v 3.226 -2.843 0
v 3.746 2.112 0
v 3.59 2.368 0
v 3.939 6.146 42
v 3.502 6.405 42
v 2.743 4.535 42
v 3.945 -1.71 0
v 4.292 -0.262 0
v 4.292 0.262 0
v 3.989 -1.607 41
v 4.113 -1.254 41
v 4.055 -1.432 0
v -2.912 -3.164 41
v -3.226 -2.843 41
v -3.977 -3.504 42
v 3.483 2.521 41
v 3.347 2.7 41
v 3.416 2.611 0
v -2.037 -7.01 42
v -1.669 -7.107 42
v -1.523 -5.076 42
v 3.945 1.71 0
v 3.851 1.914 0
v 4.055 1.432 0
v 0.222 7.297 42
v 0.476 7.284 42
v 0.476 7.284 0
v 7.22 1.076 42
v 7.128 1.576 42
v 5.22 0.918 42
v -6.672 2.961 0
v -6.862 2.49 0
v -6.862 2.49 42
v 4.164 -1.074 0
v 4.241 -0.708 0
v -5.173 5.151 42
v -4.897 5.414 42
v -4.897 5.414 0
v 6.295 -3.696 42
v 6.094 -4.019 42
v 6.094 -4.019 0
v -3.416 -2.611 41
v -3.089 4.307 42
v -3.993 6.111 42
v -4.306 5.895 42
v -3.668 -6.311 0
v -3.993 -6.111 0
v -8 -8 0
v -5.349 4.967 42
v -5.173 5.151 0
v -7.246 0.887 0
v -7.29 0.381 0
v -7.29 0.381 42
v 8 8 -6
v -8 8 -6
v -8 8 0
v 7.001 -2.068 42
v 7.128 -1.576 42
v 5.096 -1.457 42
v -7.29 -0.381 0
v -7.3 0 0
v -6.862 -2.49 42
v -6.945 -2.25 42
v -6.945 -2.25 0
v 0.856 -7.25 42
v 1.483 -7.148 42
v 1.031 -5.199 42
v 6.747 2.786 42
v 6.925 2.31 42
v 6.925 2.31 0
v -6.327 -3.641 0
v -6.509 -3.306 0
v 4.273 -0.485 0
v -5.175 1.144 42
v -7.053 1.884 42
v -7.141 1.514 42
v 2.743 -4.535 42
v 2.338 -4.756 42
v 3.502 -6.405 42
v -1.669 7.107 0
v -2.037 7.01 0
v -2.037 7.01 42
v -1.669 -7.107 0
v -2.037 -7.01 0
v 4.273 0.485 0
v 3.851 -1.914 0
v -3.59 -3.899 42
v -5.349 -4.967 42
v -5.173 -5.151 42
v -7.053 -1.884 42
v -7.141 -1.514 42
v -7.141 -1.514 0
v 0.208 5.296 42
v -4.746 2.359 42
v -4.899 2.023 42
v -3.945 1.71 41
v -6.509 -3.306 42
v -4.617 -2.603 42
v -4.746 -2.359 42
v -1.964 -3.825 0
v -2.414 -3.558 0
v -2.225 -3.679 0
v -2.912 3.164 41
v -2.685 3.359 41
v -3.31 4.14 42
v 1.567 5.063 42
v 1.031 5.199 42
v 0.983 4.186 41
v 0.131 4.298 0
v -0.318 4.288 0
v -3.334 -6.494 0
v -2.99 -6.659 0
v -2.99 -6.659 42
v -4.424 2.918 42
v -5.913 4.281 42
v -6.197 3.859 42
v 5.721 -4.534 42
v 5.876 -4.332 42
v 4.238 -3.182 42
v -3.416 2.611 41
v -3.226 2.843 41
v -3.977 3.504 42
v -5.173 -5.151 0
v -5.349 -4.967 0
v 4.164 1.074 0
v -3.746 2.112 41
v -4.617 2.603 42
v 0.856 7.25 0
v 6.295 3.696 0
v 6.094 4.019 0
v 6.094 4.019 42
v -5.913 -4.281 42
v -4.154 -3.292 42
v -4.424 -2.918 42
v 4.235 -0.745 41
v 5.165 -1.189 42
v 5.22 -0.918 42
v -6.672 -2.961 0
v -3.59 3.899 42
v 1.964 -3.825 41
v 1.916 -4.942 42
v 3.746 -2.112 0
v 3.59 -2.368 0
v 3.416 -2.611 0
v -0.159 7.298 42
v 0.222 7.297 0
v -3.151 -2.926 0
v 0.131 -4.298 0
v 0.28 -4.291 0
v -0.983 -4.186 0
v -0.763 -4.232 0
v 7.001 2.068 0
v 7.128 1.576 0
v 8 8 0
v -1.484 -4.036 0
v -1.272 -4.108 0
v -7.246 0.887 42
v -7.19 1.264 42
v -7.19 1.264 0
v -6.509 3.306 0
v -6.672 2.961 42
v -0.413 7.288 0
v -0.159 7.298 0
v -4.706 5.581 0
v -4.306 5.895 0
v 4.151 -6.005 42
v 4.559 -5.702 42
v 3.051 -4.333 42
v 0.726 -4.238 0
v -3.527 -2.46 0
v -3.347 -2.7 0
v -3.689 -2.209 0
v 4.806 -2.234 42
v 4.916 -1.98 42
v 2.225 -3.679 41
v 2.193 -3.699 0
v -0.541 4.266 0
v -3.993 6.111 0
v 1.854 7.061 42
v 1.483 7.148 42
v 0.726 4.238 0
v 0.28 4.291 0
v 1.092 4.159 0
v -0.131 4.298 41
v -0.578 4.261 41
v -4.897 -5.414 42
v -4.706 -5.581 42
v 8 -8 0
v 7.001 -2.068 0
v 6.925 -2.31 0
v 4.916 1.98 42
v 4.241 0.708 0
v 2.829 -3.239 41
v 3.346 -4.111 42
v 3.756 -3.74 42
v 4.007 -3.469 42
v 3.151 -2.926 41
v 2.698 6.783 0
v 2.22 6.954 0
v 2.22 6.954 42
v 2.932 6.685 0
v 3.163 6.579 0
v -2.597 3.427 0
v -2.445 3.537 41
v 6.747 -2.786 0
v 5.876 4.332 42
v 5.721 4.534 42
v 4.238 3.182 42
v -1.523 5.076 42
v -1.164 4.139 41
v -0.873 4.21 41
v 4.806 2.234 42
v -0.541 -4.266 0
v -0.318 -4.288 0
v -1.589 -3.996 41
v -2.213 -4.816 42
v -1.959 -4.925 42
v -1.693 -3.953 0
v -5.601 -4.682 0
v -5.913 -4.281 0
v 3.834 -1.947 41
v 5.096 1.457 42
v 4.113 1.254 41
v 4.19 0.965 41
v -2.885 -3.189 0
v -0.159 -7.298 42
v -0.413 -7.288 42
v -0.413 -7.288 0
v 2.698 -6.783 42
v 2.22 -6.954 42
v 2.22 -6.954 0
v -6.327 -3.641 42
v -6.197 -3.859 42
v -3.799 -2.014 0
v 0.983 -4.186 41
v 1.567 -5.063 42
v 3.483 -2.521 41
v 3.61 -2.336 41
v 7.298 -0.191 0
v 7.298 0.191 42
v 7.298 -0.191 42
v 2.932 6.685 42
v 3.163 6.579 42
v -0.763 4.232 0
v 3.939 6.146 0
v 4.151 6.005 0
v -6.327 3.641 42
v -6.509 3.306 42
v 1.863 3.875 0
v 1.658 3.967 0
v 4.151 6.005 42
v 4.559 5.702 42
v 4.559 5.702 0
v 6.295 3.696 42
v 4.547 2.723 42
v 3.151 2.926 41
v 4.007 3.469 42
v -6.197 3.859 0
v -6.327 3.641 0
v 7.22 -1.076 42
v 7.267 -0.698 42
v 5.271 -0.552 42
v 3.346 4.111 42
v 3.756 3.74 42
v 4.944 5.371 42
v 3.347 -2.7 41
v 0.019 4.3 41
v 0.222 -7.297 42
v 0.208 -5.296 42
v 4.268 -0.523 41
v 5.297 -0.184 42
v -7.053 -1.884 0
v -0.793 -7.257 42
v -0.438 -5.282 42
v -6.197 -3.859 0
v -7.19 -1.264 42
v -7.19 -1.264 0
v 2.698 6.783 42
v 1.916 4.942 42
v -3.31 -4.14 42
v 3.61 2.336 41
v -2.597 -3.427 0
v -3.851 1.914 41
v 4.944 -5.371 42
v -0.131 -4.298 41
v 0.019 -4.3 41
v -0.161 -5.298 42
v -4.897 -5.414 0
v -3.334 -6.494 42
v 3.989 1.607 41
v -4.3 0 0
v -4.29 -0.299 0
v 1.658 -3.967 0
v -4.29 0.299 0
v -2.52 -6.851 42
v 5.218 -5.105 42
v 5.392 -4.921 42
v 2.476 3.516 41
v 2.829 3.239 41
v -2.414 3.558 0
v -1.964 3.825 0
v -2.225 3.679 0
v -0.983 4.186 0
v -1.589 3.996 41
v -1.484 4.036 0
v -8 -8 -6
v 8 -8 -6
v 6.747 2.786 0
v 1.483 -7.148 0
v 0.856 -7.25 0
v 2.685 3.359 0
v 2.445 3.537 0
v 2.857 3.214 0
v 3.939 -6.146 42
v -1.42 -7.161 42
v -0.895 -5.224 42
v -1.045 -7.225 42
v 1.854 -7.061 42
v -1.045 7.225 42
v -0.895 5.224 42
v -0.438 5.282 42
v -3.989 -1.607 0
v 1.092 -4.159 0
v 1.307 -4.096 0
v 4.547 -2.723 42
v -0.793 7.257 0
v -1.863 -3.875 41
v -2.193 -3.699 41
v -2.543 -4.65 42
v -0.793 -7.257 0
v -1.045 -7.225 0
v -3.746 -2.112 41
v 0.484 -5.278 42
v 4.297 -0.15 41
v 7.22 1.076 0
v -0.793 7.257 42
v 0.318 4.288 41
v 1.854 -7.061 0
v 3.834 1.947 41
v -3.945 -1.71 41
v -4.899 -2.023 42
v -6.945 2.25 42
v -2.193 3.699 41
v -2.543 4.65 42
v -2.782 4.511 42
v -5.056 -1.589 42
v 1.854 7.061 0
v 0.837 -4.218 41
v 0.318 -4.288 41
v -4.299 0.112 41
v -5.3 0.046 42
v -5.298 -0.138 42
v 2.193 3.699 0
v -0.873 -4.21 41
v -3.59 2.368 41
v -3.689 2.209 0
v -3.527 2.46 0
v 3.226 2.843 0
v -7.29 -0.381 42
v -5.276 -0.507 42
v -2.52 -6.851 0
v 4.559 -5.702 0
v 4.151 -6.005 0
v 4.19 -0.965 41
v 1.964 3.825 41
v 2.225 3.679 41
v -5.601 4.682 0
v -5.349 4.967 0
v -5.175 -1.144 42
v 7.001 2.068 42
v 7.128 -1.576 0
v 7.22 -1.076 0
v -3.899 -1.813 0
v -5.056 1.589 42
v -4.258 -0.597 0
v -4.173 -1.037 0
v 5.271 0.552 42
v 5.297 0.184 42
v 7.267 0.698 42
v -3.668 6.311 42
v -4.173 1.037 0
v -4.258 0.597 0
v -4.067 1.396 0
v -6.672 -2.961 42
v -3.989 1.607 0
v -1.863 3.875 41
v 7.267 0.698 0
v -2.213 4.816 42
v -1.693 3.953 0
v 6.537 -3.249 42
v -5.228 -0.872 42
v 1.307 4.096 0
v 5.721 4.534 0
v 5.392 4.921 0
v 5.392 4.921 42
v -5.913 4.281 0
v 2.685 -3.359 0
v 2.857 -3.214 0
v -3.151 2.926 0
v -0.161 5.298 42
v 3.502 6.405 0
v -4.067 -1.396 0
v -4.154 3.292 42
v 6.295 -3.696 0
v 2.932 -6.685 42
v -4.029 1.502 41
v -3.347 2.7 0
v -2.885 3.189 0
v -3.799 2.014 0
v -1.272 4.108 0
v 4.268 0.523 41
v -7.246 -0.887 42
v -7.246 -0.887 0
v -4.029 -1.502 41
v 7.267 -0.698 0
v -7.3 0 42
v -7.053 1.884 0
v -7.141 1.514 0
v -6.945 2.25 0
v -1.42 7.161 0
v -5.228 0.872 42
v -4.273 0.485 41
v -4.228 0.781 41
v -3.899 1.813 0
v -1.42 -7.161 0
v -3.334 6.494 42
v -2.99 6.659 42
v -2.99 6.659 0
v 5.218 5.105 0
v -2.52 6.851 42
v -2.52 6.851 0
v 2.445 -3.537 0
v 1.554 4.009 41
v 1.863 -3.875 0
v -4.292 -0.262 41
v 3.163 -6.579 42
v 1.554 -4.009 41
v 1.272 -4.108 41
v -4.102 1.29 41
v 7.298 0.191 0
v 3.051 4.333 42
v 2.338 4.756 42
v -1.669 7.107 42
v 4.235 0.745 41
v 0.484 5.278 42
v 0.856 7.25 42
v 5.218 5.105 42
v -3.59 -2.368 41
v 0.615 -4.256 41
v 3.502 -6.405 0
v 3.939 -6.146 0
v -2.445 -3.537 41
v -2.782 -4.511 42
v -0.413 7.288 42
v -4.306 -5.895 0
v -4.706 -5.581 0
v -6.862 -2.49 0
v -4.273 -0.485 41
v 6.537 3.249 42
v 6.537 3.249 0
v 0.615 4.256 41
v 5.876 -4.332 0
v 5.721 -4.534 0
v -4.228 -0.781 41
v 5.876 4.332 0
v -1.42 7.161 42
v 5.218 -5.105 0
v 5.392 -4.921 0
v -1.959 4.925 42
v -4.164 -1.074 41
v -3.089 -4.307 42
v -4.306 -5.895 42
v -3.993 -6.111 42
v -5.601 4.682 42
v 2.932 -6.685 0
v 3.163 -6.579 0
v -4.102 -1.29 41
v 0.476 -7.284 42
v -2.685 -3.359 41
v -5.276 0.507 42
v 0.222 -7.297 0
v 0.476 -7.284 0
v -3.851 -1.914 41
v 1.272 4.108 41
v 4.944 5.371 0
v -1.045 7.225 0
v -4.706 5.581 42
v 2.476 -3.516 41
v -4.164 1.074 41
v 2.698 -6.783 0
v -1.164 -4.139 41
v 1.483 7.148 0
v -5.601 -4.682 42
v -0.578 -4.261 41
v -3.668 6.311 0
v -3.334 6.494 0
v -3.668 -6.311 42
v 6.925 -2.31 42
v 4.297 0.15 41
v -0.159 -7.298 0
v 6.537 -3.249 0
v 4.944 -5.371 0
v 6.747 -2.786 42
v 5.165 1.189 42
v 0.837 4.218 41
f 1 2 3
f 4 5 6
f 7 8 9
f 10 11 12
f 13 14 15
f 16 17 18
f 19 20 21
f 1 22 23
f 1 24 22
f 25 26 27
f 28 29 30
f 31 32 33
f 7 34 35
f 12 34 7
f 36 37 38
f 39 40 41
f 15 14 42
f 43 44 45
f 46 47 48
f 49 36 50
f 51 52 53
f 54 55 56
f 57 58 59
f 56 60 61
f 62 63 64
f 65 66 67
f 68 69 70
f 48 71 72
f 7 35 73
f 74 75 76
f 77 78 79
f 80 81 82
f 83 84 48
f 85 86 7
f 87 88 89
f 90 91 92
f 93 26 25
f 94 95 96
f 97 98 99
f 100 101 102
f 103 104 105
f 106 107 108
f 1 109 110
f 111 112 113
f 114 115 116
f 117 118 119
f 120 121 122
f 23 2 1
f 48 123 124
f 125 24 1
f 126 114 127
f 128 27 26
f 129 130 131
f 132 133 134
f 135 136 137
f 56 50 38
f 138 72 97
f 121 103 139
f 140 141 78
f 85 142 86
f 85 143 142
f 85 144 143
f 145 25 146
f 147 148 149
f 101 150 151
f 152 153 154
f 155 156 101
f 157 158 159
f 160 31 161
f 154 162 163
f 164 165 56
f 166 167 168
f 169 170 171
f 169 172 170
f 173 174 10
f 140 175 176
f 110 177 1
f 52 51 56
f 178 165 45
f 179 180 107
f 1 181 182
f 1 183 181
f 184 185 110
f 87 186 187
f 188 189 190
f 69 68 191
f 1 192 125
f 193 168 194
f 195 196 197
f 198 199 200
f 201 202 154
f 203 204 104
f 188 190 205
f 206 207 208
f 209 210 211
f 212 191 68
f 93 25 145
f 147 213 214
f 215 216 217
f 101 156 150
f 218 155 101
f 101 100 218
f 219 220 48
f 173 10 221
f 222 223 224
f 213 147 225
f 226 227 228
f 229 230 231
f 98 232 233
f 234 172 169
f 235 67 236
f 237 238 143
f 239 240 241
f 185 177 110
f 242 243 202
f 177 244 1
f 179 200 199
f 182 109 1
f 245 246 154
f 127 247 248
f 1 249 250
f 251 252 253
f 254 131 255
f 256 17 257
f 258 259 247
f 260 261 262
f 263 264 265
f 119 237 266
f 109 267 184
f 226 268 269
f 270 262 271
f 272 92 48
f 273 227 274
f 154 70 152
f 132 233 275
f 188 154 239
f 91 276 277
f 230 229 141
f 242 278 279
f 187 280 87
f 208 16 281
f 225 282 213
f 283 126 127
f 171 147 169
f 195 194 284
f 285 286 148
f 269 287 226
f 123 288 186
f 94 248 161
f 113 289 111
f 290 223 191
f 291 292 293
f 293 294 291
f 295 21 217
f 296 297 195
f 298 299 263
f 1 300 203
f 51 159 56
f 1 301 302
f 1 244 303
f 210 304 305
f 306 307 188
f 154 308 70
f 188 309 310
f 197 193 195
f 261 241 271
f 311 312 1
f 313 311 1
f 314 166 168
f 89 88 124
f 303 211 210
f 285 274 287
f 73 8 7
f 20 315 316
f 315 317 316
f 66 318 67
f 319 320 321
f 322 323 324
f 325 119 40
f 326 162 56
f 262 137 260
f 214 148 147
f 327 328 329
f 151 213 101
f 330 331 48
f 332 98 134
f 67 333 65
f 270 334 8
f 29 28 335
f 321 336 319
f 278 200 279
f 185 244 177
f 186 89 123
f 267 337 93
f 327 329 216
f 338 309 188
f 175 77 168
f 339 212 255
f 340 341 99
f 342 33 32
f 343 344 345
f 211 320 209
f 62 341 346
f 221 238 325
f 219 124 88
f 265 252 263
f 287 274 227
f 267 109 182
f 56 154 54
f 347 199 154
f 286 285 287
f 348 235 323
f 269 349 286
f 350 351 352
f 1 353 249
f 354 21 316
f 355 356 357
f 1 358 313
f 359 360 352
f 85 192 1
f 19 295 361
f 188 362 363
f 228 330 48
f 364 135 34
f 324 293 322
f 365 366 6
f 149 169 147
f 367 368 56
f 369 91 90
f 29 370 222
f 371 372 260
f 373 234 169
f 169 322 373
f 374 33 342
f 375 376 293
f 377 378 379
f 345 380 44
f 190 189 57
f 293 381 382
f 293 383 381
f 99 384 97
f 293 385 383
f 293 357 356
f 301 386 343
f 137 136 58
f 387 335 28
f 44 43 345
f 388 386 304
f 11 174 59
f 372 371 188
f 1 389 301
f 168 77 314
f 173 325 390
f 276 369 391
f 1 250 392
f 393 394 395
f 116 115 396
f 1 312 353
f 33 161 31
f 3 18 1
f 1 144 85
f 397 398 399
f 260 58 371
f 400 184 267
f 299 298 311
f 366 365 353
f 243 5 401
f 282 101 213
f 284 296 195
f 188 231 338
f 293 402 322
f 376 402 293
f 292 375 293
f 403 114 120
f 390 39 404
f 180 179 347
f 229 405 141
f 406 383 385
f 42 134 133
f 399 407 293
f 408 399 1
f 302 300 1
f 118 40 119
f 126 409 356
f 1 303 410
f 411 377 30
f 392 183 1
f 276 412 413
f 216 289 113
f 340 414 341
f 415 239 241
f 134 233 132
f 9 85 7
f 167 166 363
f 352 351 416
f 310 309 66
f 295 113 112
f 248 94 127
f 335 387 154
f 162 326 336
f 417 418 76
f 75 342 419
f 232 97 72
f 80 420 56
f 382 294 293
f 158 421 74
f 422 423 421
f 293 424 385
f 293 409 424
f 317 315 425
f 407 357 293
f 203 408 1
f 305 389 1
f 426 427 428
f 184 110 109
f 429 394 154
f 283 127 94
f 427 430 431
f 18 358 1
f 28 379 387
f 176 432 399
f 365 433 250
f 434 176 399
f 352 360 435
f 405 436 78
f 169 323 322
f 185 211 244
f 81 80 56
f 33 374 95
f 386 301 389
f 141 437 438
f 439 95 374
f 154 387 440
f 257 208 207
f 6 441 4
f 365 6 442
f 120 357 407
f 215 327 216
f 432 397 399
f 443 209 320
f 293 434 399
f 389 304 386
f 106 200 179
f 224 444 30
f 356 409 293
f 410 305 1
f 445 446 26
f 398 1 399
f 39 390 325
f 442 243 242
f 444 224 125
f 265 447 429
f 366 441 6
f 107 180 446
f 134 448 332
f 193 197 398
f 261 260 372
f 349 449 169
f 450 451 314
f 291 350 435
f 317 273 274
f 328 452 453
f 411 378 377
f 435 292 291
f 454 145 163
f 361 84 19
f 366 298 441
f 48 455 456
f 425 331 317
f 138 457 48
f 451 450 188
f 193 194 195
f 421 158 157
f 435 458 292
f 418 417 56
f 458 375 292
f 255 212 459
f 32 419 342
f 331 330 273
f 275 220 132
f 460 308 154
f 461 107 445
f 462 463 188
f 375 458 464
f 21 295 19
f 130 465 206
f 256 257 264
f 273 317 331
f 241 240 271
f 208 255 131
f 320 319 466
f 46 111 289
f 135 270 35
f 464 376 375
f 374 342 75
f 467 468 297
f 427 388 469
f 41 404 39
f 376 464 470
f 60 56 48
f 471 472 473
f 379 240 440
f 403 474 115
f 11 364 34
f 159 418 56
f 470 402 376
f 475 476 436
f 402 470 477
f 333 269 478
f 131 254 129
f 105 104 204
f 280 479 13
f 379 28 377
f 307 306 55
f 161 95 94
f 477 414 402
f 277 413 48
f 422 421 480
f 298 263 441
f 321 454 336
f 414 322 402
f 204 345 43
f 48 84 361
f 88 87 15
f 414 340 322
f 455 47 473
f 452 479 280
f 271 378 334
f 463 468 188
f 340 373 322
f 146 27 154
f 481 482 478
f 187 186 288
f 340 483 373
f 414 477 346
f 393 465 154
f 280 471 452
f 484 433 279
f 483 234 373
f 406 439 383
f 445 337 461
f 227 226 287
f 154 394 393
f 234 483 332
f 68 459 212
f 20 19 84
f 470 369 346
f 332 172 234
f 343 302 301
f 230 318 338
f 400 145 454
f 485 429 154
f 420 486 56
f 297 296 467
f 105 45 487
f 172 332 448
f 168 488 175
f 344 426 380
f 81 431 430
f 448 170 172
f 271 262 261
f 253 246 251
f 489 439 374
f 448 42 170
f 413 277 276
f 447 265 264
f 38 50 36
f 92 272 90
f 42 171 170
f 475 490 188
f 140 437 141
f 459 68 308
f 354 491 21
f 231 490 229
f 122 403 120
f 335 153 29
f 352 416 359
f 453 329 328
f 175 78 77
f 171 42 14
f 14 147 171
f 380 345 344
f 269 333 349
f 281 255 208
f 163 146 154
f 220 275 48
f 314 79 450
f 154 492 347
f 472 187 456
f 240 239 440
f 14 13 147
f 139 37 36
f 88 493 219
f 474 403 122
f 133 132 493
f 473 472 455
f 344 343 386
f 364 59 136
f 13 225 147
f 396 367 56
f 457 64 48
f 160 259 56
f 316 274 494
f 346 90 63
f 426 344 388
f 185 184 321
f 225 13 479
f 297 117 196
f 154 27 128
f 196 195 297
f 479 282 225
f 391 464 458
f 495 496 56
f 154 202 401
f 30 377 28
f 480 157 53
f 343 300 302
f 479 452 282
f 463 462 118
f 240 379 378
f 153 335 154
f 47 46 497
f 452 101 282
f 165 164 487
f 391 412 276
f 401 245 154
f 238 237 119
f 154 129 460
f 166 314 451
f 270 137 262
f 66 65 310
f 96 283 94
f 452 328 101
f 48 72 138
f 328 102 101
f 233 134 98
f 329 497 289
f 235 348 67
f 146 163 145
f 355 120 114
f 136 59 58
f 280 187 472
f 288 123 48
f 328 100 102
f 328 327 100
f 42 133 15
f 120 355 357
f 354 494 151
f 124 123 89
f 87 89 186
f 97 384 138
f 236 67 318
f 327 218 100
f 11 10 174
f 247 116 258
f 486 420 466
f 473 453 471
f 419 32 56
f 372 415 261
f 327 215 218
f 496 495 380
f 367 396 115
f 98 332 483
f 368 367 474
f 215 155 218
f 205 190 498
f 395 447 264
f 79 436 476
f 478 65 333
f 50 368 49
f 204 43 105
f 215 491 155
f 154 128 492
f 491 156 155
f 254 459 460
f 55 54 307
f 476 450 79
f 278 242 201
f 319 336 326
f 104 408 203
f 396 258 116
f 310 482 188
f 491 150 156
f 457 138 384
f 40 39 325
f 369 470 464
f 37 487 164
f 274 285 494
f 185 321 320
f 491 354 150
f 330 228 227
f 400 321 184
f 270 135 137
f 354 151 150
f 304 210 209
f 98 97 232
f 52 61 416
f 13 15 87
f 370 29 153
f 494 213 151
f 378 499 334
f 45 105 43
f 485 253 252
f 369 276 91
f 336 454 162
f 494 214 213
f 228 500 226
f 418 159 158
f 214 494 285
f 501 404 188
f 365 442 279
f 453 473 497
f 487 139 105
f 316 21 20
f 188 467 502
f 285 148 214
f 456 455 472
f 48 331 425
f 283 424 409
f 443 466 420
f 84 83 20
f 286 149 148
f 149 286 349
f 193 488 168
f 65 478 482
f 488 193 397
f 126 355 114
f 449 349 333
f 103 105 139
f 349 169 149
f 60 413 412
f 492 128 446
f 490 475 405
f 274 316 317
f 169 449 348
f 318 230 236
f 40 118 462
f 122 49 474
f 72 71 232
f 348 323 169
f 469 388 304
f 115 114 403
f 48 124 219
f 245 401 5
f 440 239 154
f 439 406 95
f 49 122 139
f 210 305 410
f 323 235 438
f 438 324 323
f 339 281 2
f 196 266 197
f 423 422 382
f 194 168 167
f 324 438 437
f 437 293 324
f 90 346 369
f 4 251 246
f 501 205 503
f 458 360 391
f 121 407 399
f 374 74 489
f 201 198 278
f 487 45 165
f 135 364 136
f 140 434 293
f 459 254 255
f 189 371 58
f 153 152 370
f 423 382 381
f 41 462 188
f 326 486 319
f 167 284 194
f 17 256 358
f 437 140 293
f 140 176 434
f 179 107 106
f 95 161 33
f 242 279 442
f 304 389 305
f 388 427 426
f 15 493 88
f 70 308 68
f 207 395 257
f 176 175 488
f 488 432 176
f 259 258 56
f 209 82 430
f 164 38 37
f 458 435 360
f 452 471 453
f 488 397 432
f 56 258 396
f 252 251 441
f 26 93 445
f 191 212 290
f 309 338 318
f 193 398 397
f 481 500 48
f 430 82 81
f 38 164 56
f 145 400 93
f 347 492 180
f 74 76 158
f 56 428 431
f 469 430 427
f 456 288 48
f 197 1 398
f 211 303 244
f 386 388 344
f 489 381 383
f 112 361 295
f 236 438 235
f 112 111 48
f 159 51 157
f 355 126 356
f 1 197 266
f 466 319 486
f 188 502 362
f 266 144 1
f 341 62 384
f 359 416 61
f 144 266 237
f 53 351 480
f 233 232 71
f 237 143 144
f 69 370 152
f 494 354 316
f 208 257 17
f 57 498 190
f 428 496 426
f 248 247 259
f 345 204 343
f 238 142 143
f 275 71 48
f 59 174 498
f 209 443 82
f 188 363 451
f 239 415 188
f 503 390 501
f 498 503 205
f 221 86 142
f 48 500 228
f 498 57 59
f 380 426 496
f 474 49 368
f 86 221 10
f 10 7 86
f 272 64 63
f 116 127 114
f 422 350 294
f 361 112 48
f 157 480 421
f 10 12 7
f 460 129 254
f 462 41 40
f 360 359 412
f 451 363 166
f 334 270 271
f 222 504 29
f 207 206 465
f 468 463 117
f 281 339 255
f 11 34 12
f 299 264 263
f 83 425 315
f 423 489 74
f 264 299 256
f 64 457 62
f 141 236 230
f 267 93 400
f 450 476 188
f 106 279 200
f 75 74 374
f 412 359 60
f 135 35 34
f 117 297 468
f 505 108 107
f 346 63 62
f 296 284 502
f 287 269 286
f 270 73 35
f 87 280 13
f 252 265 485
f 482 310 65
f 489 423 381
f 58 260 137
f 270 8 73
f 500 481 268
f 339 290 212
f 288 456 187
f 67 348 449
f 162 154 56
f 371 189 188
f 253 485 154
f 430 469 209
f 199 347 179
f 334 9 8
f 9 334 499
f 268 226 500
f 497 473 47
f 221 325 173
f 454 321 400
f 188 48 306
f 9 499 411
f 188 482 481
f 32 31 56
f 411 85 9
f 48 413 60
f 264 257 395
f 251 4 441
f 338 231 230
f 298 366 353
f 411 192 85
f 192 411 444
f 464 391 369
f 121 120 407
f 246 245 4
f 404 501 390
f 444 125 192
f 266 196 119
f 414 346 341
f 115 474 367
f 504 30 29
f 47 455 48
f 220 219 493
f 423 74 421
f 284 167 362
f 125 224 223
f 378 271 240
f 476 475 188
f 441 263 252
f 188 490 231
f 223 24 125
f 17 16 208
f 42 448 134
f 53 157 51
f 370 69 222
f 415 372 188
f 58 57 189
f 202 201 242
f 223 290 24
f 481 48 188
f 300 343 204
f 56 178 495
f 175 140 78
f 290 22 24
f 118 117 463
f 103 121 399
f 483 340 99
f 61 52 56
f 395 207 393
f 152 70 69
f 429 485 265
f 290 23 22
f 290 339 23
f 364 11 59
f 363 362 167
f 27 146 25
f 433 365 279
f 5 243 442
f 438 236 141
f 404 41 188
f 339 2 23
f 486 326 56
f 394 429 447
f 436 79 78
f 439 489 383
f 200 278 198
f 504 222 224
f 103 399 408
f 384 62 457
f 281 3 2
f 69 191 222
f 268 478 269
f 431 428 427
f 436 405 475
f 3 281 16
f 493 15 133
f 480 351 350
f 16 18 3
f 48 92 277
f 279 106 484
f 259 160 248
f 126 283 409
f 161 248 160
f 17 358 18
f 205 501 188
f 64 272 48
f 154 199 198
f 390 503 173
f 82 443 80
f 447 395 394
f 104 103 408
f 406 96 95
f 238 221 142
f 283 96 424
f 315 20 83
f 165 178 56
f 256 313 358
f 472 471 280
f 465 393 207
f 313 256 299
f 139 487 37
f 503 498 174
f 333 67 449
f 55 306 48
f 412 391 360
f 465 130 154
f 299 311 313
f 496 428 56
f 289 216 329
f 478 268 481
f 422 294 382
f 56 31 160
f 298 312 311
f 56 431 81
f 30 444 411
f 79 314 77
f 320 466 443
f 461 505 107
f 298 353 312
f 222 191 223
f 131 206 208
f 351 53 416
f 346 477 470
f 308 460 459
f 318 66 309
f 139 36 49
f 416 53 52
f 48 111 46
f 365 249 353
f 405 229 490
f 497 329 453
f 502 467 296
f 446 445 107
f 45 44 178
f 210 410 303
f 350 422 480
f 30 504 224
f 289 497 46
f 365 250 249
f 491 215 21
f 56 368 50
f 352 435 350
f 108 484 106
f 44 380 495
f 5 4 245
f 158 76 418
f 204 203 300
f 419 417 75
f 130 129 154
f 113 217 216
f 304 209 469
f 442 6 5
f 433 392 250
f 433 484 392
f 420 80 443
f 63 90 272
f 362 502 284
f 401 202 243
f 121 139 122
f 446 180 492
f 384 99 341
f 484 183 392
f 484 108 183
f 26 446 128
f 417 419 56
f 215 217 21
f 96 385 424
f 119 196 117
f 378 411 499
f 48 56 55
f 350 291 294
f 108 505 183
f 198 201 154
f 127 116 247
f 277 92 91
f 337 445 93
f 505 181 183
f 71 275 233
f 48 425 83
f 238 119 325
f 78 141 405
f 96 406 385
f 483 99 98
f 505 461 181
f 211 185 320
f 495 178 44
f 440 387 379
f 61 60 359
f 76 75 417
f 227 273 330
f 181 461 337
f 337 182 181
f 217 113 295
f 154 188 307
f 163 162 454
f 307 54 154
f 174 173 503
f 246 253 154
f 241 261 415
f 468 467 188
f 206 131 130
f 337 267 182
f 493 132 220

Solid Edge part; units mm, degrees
sketch "Sketch1" plane through (0, 0, 0) normal (0, 0, 1) x (1, 0, 0)
  circle A0 centre (0, 0) radius 7.3
  circle A1 centre (0, 0) radius 4.3
  dimension "D1" = 3
  dimension "D2" = 8.6
extrude "Protrusion1" add sketch "Sketch1" along normal blind 42
chamfer "Chamfer_1" distance 1 angle 45 1 edges at (-4.3, 0, 42)
sketch "Sketch2" plane through (0, 0, 0) normal (0, 0, -1) x (0, -1, 0)
  line L0 (-8, -8) -> (8, -8)
  line L1 (8, -8) -> (8, 8)
  line L2 (8, 8) -> (-8, 8)
  line L3 (-8, 8) -> (-8, -8)
  dimension "D1" = 16
  dimension "D2" = 16
extrude "ExtrudedProtrusion_4" add sketch "Sketch2" along normal blind 6
